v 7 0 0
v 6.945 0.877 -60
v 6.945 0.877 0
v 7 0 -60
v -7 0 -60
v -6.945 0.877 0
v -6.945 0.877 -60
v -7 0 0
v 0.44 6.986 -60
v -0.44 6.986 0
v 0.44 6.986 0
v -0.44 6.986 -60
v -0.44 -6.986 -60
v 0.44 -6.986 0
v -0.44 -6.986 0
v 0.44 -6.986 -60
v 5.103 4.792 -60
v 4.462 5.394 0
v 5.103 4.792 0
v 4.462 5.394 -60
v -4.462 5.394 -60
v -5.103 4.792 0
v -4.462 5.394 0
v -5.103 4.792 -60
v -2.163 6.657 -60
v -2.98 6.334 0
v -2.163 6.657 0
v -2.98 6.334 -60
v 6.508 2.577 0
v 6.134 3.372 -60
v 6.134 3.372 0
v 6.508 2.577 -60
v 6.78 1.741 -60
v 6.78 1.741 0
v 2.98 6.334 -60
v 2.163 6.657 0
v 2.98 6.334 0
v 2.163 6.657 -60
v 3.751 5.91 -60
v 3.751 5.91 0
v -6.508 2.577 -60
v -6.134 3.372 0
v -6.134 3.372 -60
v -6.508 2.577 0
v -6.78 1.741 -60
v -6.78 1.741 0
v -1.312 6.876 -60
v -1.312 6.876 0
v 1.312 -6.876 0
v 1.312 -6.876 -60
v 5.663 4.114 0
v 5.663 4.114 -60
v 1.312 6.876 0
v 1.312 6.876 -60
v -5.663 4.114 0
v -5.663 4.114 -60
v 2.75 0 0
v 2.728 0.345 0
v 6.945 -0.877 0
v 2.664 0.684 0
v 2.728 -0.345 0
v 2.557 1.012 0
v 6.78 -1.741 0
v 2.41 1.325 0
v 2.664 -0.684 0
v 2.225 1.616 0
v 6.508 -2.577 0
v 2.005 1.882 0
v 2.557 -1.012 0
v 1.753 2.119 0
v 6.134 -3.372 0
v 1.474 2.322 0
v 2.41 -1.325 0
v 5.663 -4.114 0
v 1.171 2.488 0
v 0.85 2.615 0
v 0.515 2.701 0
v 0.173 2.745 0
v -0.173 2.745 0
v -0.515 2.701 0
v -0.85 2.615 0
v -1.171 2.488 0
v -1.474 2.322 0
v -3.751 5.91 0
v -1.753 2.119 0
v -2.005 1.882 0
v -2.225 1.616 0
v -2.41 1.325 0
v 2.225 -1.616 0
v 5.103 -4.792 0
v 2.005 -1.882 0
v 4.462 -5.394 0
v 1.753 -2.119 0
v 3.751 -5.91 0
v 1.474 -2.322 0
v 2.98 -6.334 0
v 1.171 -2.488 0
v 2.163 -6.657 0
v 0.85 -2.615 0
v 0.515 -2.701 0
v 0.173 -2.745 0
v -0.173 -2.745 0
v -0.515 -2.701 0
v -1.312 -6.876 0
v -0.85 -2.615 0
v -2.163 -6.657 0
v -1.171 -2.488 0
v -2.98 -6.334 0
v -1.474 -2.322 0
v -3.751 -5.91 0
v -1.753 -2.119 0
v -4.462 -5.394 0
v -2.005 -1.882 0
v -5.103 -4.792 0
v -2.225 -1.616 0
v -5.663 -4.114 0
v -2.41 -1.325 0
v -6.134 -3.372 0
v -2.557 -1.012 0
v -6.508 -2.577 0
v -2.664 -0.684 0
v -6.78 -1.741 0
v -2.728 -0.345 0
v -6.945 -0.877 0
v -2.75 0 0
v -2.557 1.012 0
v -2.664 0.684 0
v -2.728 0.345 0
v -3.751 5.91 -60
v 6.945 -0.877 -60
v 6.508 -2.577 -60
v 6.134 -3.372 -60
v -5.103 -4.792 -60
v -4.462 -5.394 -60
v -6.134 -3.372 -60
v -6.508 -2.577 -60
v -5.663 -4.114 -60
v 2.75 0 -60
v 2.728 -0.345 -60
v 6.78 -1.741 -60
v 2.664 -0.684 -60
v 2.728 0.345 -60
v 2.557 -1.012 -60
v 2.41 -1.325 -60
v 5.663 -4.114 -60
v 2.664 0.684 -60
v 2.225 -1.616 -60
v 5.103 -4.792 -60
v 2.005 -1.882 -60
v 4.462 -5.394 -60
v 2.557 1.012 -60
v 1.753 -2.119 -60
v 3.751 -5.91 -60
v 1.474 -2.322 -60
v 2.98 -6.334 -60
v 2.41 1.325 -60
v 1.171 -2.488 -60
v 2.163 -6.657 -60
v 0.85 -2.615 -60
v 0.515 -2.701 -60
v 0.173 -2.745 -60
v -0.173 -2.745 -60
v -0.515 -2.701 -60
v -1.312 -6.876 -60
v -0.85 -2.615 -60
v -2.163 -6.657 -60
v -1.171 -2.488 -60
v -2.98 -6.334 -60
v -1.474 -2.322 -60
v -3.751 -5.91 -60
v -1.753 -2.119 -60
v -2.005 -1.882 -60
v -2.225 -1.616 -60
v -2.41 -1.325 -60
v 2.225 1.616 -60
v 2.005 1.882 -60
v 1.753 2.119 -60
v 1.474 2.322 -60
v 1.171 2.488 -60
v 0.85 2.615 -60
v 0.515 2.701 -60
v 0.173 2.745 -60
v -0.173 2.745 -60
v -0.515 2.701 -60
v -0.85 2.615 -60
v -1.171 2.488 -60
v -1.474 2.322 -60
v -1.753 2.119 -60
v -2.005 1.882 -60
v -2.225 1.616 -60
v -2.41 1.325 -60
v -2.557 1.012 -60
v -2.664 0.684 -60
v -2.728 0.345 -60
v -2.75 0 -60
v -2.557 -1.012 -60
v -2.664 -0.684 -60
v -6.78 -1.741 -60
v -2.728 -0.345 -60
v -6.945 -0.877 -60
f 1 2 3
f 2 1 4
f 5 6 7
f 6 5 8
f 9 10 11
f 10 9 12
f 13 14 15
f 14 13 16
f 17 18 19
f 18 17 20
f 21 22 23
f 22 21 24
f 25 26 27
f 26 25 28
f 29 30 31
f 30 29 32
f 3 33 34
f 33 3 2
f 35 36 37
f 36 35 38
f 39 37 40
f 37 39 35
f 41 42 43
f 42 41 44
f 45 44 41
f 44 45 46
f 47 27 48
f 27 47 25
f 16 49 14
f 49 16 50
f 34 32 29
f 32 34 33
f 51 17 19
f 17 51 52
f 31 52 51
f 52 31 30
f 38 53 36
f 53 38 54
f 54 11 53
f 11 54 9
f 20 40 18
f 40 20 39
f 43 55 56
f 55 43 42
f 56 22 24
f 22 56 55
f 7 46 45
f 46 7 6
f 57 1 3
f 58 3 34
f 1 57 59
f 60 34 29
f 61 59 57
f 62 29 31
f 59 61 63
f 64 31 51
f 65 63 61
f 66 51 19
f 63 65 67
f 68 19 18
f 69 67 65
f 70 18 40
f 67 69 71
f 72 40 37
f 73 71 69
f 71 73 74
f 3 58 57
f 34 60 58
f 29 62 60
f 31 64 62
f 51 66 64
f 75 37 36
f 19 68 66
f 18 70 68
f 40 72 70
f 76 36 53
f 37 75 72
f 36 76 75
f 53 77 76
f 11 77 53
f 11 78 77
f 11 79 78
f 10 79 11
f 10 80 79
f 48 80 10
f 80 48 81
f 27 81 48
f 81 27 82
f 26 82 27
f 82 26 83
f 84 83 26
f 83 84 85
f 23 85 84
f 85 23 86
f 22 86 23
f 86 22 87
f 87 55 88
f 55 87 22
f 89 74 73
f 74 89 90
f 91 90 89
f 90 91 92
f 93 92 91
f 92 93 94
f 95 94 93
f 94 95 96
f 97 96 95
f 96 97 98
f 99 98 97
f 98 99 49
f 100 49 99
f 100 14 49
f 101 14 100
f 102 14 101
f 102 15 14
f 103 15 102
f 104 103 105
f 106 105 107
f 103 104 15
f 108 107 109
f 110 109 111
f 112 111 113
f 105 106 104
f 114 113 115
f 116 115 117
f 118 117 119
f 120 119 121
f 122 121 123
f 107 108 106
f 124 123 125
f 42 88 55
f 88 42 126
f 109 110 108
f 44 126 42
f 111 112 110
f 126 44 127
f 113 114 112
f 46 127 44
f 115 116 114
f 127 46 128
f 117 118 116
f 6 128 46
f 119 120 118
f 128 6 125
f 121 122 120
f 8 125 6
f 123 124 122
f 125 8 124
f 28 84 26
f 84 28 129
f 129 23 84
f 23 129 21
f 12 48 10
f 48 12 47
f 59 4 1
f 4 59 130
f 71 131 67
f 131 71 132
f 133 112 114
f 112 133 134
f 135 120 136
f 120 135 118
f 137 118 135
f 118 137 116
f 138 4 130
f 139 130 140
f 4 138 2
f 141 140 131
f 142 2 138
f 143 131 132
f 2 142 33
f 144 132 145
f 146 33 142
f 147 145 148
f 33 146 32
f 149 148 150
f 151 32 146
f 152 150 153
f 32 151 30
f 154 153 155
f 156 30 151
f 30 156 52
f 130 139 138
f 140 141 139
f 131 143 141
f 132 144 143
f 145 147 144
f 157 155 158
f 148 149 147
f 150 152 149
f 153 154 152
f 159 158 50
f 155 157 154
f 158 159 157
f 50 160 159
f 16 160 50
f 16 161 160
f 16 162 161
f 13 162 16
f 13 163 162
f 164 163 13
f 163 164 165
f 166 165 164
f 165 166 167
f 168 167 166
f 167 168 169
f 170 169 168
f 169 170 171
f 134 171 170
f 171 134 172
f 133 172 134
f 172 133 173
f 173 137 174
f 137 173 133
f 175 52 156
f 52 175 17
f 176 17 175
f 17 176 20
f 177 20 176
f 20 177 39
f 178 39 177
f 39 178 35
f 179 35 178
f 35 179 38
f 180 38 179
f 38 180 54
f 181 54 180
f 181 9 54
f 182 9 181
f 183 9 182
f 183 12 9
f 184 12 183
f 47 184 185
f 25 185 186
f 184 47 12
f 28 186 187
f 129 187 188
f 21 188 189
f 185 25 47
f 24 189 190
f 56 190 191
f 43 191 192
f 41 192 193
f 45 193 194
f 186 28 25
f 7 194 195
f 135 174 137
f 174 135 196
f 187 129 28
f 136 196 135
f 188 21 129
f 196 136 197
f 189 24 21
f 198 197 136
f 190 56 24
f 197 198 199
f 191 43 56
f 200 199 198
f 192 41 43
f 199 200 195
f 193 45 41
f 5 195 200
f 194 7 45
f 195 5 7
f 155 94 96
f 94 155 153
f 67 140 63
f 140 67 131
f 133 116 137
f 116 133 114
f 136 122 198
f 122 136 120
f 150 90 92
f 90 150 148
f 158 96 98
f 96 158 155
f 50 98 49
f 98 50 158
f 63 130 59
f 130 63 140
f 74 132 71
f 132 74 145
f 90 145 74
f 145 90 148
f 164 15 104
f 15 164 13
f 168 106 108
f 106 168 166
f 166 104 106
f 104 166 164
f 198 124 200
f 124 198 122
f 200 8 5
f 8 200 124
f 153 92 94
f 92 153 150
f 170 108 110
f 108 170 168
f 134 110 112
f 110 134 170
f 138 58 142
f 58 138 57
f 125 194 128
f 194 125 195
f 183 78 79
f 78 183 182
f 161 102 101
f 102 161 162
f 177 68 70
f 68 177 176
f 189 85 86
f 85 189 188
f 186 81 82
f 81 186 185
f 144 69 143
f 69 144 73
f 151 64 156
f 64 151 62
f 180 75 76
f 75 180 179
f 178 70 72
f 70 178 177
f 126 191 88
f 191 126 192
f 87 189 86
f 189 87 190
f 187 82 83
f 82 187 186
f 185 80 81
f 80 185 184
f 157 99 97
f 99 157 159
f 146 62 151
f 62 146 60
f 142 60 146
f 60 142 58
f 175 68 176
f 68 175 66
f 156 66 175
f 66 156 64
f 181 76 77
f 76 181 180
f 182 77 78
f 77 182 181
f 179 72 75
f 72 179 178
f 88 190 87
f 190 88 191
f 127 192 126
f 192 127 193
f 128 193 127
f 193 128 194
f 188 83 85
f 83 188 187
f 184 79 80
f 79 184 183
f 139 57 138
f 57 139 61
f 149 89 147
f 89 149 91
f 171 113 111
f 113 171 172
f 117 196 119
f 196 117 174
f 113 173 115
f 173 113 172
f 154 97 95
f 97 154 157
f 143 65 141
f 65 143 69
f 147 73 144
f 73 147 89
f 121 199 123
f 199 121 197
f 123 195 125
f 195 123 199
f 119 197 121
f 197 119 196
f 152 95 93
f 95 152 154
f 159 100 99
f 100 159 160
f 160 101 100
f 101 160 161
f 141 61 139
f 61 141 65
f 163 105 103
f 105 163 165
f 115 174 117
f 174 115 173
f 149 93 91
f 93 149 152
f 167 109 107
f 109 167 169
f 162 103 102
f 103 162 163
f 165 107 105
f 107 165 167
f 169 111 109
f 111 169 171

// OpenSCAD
$fn = 50;


difference() {
	union() {
		translate(v = [0, 0, -60.0000000000]) {
			cylinder(h = 60, r = 7.0000000000);
		}
		cylinder(h = 0, r = 17.0000000000);
	}
	union() {
		#translate(v = [0, 0, -60]) {
			cylinder(h = 60, r = 2.7500000000);
		}
	}
}
